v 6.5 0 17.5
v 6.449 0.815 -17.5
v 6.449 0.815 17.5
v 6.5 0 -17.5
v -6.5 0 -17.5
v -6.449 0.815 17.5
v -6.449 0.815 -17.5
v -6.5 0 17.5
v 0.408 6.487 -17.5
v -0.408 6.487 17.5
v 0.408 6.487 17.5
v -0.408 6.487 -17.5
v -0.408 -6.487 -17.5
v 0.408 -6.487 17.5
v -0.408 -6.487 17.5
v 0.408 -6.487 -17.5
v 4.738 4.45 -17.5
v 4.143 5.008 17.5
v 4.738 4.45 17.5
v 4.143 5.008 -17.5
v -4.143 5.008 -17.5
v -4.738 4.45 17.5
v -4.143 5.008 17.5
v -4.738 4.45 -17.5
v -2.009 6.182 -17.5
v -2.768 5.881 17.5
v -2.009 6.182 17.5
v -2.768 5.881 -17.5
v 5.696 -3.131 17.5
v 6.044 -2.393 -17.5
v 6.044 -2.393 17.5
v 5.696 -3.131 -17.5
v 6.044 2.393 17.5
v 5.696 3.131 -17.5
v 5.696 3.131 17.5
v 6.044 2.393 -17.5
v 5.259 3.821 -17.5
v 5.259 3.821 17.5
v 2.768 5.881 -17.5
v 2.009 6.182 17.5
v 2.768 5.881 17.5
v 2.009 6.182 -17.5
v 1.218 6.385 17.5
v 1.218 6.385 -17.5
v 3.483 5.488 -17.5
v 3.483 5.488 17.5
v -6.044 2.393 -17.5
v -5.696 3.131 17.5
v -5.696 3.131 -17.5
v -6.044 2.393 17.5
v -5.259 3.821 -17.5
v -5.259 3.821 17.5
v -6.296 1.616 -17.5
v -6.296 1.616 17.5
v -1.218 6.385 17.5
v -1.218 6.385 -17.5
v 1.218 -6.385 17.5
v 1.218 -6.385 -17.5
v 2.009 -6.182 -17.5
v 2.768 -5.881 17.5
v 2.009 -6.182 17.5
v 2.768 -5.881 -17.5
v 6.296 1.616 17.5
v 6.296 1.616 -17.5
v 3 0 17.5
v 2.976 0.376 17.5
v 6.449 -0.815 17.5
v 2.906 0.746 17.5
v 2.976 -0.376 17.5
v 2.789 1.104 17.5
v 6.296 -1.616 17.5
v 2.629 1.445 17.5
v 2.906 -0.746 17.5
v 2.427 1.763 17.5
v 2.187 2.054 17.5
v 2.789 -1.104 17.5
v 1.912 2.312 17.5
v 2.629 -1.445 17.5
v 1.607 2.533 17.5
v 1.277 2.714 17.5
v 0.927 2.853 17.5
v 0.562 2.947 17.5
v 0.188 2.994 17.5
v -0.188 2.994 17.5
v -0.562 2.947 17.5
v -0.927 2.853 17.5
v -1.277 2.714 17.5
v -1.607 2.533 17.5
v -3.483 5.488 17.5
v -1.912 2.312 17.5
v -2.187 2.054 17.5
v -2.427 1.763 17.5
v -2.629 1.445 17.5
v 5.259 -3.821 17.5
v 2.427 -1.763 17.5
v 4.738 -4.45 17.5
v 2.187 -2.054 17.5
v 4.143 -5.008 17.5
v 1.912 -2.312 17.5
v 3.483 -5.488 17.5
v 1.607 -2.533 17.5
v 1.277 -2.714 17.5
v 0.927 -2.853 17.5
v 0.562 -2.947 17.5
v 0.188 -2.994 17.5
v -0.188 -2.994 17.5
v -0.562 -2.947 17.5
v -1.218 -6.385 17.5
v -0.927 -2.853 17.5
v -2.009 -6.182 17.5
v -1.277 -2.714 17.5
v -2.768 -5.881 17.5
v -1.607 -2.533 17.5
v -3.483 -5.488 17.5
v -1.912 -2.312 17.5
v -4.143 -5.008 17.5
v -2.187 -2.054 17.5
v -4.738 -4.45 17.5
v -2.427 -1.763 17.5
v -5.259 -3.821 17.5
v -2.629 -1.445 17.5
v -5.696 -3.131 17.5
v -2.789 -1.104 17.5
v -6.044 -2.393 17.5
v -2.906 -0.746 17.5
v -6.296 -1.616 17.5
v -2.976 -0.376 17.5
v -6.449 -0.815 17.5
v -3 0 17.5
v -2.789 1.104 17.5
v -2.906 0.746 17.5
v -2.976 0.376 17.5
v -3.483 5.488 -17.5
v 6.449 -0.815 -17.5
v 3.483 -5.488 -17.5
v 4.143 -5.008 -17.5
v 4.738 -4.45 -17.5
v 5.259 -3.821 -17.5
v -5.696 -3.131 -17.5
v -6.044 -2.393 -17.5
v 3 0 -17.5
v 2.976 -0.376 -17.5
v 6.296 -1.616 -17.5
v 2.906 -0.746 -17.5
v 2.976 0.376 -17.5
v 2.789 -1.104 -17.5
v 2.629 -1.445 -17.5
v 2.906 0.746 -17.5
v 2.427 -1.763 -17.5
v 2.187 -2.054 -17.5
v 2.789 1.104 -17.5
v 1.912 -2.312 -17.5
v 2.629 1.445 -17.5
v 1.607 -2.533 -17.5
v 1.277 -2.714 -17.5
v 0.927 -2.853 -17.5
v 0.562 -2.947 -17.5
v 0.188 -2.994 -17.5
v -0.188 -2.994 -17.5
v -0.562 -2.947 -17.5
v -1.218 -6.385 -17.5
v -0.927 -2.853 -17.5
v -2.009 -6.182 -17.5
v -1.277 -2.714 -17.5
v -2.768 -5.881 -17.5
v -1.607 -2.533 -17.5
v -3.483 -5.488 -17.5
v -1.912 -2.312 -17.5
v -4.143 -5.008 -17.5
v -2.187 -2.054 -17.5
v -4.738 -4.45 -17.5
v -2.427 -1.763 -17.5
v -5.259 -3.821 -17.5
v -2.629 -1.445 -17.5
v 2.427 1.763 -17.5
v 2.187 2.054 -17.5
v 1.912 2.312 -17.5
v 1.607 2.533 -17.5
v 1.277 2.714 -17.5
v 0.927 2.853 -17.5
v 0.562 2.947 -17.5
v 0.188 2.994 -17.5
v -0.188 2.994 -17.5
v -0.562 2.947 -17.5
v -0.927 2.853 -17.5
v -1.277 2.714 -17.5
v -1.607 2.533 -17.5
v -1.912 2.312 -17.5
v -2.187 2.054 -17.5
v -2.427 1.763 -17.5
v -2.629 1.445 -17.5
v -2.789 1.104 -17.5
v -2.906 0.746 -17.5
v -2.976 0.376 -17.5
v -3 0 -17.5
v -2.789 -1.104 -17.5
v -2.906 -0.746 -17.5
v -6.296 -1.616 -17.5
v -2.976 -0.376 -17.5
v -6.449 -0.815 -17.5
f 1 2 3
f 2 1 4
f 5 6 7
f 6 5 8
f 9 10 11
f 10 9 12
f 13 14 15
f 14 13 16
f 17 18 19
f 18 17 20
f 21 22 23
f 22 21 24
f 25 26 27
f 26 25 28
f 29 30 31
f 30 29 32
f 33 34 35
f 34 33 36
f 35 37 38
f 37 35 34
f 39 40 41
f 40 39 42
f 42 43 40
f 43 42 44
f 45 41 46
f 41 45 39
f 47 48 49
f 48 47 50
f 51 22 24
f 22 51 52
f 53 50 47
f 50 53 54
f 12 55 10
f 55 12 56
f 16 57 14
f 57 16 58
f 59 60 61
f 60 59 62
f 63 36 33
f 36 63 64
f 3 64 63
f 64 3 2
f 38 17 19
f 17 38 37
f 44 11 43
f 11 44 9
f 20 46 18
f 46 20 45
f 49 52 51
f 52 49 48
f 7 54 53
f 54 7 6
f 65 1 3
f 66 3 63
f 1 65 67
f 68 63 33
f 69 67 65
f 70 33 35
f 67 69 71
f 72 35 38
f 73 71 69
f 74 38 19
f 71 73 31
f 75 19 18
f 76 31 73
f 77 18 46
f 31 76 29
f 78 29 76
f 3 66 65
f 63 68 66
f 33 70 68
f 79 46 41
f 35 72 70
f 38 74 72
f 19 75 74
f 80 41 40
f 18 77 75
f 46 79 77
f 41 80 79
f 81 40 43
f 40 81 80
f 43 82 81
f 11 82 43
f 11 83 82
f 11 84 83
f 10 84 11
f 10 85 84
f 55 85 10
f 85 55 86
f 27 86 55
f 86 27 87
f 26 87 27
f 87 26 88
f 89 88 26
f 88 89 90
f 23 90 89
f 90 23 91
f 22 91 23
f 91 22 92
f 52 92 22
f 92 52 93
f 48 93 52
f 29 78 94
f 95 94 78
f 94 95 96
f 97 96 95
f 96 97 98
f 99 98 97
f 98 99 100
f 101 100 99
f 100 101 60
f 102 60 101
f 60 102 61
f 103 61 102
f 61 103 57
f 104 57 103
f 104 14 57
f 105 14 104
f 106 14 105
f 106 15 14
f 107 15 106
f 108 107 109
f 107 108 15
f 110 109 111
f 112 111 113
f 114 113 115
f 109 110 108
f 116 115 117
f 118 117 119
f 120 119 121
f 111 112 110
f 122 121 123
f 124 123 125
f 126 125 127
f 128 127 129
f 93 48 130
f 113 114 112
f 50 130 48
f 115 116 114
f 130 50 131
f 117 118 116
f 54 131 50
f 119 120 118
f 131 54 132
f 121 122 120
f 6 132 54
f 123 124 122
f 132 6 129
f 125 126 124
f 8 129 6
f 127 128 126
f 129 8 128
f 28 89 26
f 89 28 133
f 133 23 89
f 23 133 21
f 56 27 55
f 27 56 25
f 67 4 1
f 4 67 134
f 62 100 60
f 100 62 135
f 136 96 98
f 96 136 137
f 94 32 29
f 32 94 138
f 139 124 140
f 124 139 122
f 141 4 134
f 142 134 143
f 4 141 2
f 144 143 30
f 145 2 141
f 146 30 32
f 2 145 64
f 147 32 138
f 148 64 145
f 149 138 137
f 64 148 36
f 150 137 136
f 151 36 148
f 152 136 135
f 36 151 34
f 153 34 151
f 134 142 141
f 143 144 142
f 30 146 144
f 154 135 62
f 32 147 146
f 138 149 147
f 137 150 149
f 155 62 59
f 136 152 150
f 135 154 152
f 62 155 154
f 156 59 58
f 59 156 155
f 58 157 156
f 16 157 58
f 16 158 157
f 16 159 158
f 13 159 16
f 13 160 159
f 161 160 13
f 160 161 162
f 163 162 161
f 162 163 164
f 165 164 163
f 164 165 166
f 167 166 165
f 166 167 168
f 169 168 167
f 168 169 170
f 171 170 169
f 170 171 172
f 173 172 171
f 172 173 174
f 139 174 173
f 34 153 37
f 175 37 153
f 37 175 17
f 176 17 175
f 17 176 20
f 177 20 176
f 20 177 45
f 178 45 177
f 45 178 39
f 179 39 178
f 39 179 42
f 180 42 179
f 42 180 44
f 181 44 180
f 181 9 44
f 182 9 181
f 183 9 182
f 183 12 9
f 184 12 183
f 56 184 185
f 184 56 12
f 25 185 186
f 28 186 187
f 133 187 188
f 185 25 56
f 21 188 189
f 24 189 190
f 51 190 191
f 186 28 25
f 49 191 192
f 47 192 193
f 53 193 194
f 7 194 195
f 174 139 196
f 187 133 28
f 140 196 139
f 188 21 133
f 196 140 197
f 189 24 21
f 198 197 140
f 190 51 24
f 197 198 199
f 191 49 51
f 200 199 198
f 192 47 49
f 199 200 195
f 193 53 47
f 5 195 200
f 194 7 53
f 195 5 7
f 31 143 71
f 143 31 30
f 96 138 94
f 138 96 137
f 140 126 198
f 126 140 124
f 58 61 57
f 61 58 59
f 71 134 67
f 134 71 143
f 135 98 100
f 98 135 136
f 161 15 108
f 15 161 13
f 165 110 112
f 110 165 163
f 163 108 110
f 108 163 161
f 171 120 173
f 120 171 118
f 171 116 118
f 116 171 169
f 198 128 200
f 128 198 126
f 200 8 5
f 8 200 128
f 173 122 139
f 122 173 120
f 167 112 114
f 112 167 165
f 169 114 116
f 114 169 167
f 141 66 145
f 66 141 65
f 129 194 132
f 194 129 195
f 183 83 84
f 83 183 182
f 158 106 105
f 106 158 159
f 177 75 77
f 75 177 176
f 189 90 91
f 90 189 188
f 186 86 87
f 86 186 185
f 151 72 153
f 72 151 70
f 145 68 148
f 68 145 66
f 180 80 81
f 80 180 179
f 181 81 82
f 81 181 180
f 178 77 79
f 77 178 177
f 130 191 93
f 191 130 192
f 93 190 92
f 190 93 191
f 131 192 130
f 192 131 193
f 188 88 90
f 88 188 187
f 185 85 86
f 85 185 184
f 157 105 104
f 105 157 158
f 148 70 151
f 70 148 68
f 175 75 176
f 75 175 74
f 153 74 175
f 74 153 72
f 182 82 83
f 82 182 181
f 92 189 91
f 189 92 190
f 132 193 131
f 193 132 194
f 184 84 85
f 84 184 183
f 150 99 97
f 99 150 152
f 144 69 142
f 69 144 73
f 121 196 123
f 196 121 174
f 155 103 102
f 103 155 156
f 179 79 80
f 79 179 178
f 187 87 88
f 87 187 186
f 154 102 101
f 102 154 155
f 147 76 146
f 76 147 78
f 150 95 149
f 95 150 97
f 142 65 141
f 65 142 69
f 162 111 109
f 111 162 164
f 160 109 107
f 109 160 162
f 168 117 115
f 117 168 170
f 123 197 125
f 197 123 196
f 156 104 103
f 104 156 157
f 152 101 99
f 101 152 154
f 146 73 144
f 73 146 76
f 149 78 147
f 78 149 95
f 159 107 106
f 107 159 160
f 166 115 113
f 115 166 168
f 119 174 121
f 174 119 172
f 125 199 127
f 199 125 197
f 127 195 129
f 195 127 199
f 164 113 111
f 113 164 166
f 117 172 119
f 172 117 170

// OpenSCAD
$fn = 50;


difference() {
	union() {
		translate(v = [0, 0, -17.5000000000]) {
			cylinder(h = 35, r = 6.5000000000);
		}
	}
	union() {
		translate(v = [0, 0, -100.0000000000]) {
			cylinder(h = 200, r = 3);
		}
	}
}
